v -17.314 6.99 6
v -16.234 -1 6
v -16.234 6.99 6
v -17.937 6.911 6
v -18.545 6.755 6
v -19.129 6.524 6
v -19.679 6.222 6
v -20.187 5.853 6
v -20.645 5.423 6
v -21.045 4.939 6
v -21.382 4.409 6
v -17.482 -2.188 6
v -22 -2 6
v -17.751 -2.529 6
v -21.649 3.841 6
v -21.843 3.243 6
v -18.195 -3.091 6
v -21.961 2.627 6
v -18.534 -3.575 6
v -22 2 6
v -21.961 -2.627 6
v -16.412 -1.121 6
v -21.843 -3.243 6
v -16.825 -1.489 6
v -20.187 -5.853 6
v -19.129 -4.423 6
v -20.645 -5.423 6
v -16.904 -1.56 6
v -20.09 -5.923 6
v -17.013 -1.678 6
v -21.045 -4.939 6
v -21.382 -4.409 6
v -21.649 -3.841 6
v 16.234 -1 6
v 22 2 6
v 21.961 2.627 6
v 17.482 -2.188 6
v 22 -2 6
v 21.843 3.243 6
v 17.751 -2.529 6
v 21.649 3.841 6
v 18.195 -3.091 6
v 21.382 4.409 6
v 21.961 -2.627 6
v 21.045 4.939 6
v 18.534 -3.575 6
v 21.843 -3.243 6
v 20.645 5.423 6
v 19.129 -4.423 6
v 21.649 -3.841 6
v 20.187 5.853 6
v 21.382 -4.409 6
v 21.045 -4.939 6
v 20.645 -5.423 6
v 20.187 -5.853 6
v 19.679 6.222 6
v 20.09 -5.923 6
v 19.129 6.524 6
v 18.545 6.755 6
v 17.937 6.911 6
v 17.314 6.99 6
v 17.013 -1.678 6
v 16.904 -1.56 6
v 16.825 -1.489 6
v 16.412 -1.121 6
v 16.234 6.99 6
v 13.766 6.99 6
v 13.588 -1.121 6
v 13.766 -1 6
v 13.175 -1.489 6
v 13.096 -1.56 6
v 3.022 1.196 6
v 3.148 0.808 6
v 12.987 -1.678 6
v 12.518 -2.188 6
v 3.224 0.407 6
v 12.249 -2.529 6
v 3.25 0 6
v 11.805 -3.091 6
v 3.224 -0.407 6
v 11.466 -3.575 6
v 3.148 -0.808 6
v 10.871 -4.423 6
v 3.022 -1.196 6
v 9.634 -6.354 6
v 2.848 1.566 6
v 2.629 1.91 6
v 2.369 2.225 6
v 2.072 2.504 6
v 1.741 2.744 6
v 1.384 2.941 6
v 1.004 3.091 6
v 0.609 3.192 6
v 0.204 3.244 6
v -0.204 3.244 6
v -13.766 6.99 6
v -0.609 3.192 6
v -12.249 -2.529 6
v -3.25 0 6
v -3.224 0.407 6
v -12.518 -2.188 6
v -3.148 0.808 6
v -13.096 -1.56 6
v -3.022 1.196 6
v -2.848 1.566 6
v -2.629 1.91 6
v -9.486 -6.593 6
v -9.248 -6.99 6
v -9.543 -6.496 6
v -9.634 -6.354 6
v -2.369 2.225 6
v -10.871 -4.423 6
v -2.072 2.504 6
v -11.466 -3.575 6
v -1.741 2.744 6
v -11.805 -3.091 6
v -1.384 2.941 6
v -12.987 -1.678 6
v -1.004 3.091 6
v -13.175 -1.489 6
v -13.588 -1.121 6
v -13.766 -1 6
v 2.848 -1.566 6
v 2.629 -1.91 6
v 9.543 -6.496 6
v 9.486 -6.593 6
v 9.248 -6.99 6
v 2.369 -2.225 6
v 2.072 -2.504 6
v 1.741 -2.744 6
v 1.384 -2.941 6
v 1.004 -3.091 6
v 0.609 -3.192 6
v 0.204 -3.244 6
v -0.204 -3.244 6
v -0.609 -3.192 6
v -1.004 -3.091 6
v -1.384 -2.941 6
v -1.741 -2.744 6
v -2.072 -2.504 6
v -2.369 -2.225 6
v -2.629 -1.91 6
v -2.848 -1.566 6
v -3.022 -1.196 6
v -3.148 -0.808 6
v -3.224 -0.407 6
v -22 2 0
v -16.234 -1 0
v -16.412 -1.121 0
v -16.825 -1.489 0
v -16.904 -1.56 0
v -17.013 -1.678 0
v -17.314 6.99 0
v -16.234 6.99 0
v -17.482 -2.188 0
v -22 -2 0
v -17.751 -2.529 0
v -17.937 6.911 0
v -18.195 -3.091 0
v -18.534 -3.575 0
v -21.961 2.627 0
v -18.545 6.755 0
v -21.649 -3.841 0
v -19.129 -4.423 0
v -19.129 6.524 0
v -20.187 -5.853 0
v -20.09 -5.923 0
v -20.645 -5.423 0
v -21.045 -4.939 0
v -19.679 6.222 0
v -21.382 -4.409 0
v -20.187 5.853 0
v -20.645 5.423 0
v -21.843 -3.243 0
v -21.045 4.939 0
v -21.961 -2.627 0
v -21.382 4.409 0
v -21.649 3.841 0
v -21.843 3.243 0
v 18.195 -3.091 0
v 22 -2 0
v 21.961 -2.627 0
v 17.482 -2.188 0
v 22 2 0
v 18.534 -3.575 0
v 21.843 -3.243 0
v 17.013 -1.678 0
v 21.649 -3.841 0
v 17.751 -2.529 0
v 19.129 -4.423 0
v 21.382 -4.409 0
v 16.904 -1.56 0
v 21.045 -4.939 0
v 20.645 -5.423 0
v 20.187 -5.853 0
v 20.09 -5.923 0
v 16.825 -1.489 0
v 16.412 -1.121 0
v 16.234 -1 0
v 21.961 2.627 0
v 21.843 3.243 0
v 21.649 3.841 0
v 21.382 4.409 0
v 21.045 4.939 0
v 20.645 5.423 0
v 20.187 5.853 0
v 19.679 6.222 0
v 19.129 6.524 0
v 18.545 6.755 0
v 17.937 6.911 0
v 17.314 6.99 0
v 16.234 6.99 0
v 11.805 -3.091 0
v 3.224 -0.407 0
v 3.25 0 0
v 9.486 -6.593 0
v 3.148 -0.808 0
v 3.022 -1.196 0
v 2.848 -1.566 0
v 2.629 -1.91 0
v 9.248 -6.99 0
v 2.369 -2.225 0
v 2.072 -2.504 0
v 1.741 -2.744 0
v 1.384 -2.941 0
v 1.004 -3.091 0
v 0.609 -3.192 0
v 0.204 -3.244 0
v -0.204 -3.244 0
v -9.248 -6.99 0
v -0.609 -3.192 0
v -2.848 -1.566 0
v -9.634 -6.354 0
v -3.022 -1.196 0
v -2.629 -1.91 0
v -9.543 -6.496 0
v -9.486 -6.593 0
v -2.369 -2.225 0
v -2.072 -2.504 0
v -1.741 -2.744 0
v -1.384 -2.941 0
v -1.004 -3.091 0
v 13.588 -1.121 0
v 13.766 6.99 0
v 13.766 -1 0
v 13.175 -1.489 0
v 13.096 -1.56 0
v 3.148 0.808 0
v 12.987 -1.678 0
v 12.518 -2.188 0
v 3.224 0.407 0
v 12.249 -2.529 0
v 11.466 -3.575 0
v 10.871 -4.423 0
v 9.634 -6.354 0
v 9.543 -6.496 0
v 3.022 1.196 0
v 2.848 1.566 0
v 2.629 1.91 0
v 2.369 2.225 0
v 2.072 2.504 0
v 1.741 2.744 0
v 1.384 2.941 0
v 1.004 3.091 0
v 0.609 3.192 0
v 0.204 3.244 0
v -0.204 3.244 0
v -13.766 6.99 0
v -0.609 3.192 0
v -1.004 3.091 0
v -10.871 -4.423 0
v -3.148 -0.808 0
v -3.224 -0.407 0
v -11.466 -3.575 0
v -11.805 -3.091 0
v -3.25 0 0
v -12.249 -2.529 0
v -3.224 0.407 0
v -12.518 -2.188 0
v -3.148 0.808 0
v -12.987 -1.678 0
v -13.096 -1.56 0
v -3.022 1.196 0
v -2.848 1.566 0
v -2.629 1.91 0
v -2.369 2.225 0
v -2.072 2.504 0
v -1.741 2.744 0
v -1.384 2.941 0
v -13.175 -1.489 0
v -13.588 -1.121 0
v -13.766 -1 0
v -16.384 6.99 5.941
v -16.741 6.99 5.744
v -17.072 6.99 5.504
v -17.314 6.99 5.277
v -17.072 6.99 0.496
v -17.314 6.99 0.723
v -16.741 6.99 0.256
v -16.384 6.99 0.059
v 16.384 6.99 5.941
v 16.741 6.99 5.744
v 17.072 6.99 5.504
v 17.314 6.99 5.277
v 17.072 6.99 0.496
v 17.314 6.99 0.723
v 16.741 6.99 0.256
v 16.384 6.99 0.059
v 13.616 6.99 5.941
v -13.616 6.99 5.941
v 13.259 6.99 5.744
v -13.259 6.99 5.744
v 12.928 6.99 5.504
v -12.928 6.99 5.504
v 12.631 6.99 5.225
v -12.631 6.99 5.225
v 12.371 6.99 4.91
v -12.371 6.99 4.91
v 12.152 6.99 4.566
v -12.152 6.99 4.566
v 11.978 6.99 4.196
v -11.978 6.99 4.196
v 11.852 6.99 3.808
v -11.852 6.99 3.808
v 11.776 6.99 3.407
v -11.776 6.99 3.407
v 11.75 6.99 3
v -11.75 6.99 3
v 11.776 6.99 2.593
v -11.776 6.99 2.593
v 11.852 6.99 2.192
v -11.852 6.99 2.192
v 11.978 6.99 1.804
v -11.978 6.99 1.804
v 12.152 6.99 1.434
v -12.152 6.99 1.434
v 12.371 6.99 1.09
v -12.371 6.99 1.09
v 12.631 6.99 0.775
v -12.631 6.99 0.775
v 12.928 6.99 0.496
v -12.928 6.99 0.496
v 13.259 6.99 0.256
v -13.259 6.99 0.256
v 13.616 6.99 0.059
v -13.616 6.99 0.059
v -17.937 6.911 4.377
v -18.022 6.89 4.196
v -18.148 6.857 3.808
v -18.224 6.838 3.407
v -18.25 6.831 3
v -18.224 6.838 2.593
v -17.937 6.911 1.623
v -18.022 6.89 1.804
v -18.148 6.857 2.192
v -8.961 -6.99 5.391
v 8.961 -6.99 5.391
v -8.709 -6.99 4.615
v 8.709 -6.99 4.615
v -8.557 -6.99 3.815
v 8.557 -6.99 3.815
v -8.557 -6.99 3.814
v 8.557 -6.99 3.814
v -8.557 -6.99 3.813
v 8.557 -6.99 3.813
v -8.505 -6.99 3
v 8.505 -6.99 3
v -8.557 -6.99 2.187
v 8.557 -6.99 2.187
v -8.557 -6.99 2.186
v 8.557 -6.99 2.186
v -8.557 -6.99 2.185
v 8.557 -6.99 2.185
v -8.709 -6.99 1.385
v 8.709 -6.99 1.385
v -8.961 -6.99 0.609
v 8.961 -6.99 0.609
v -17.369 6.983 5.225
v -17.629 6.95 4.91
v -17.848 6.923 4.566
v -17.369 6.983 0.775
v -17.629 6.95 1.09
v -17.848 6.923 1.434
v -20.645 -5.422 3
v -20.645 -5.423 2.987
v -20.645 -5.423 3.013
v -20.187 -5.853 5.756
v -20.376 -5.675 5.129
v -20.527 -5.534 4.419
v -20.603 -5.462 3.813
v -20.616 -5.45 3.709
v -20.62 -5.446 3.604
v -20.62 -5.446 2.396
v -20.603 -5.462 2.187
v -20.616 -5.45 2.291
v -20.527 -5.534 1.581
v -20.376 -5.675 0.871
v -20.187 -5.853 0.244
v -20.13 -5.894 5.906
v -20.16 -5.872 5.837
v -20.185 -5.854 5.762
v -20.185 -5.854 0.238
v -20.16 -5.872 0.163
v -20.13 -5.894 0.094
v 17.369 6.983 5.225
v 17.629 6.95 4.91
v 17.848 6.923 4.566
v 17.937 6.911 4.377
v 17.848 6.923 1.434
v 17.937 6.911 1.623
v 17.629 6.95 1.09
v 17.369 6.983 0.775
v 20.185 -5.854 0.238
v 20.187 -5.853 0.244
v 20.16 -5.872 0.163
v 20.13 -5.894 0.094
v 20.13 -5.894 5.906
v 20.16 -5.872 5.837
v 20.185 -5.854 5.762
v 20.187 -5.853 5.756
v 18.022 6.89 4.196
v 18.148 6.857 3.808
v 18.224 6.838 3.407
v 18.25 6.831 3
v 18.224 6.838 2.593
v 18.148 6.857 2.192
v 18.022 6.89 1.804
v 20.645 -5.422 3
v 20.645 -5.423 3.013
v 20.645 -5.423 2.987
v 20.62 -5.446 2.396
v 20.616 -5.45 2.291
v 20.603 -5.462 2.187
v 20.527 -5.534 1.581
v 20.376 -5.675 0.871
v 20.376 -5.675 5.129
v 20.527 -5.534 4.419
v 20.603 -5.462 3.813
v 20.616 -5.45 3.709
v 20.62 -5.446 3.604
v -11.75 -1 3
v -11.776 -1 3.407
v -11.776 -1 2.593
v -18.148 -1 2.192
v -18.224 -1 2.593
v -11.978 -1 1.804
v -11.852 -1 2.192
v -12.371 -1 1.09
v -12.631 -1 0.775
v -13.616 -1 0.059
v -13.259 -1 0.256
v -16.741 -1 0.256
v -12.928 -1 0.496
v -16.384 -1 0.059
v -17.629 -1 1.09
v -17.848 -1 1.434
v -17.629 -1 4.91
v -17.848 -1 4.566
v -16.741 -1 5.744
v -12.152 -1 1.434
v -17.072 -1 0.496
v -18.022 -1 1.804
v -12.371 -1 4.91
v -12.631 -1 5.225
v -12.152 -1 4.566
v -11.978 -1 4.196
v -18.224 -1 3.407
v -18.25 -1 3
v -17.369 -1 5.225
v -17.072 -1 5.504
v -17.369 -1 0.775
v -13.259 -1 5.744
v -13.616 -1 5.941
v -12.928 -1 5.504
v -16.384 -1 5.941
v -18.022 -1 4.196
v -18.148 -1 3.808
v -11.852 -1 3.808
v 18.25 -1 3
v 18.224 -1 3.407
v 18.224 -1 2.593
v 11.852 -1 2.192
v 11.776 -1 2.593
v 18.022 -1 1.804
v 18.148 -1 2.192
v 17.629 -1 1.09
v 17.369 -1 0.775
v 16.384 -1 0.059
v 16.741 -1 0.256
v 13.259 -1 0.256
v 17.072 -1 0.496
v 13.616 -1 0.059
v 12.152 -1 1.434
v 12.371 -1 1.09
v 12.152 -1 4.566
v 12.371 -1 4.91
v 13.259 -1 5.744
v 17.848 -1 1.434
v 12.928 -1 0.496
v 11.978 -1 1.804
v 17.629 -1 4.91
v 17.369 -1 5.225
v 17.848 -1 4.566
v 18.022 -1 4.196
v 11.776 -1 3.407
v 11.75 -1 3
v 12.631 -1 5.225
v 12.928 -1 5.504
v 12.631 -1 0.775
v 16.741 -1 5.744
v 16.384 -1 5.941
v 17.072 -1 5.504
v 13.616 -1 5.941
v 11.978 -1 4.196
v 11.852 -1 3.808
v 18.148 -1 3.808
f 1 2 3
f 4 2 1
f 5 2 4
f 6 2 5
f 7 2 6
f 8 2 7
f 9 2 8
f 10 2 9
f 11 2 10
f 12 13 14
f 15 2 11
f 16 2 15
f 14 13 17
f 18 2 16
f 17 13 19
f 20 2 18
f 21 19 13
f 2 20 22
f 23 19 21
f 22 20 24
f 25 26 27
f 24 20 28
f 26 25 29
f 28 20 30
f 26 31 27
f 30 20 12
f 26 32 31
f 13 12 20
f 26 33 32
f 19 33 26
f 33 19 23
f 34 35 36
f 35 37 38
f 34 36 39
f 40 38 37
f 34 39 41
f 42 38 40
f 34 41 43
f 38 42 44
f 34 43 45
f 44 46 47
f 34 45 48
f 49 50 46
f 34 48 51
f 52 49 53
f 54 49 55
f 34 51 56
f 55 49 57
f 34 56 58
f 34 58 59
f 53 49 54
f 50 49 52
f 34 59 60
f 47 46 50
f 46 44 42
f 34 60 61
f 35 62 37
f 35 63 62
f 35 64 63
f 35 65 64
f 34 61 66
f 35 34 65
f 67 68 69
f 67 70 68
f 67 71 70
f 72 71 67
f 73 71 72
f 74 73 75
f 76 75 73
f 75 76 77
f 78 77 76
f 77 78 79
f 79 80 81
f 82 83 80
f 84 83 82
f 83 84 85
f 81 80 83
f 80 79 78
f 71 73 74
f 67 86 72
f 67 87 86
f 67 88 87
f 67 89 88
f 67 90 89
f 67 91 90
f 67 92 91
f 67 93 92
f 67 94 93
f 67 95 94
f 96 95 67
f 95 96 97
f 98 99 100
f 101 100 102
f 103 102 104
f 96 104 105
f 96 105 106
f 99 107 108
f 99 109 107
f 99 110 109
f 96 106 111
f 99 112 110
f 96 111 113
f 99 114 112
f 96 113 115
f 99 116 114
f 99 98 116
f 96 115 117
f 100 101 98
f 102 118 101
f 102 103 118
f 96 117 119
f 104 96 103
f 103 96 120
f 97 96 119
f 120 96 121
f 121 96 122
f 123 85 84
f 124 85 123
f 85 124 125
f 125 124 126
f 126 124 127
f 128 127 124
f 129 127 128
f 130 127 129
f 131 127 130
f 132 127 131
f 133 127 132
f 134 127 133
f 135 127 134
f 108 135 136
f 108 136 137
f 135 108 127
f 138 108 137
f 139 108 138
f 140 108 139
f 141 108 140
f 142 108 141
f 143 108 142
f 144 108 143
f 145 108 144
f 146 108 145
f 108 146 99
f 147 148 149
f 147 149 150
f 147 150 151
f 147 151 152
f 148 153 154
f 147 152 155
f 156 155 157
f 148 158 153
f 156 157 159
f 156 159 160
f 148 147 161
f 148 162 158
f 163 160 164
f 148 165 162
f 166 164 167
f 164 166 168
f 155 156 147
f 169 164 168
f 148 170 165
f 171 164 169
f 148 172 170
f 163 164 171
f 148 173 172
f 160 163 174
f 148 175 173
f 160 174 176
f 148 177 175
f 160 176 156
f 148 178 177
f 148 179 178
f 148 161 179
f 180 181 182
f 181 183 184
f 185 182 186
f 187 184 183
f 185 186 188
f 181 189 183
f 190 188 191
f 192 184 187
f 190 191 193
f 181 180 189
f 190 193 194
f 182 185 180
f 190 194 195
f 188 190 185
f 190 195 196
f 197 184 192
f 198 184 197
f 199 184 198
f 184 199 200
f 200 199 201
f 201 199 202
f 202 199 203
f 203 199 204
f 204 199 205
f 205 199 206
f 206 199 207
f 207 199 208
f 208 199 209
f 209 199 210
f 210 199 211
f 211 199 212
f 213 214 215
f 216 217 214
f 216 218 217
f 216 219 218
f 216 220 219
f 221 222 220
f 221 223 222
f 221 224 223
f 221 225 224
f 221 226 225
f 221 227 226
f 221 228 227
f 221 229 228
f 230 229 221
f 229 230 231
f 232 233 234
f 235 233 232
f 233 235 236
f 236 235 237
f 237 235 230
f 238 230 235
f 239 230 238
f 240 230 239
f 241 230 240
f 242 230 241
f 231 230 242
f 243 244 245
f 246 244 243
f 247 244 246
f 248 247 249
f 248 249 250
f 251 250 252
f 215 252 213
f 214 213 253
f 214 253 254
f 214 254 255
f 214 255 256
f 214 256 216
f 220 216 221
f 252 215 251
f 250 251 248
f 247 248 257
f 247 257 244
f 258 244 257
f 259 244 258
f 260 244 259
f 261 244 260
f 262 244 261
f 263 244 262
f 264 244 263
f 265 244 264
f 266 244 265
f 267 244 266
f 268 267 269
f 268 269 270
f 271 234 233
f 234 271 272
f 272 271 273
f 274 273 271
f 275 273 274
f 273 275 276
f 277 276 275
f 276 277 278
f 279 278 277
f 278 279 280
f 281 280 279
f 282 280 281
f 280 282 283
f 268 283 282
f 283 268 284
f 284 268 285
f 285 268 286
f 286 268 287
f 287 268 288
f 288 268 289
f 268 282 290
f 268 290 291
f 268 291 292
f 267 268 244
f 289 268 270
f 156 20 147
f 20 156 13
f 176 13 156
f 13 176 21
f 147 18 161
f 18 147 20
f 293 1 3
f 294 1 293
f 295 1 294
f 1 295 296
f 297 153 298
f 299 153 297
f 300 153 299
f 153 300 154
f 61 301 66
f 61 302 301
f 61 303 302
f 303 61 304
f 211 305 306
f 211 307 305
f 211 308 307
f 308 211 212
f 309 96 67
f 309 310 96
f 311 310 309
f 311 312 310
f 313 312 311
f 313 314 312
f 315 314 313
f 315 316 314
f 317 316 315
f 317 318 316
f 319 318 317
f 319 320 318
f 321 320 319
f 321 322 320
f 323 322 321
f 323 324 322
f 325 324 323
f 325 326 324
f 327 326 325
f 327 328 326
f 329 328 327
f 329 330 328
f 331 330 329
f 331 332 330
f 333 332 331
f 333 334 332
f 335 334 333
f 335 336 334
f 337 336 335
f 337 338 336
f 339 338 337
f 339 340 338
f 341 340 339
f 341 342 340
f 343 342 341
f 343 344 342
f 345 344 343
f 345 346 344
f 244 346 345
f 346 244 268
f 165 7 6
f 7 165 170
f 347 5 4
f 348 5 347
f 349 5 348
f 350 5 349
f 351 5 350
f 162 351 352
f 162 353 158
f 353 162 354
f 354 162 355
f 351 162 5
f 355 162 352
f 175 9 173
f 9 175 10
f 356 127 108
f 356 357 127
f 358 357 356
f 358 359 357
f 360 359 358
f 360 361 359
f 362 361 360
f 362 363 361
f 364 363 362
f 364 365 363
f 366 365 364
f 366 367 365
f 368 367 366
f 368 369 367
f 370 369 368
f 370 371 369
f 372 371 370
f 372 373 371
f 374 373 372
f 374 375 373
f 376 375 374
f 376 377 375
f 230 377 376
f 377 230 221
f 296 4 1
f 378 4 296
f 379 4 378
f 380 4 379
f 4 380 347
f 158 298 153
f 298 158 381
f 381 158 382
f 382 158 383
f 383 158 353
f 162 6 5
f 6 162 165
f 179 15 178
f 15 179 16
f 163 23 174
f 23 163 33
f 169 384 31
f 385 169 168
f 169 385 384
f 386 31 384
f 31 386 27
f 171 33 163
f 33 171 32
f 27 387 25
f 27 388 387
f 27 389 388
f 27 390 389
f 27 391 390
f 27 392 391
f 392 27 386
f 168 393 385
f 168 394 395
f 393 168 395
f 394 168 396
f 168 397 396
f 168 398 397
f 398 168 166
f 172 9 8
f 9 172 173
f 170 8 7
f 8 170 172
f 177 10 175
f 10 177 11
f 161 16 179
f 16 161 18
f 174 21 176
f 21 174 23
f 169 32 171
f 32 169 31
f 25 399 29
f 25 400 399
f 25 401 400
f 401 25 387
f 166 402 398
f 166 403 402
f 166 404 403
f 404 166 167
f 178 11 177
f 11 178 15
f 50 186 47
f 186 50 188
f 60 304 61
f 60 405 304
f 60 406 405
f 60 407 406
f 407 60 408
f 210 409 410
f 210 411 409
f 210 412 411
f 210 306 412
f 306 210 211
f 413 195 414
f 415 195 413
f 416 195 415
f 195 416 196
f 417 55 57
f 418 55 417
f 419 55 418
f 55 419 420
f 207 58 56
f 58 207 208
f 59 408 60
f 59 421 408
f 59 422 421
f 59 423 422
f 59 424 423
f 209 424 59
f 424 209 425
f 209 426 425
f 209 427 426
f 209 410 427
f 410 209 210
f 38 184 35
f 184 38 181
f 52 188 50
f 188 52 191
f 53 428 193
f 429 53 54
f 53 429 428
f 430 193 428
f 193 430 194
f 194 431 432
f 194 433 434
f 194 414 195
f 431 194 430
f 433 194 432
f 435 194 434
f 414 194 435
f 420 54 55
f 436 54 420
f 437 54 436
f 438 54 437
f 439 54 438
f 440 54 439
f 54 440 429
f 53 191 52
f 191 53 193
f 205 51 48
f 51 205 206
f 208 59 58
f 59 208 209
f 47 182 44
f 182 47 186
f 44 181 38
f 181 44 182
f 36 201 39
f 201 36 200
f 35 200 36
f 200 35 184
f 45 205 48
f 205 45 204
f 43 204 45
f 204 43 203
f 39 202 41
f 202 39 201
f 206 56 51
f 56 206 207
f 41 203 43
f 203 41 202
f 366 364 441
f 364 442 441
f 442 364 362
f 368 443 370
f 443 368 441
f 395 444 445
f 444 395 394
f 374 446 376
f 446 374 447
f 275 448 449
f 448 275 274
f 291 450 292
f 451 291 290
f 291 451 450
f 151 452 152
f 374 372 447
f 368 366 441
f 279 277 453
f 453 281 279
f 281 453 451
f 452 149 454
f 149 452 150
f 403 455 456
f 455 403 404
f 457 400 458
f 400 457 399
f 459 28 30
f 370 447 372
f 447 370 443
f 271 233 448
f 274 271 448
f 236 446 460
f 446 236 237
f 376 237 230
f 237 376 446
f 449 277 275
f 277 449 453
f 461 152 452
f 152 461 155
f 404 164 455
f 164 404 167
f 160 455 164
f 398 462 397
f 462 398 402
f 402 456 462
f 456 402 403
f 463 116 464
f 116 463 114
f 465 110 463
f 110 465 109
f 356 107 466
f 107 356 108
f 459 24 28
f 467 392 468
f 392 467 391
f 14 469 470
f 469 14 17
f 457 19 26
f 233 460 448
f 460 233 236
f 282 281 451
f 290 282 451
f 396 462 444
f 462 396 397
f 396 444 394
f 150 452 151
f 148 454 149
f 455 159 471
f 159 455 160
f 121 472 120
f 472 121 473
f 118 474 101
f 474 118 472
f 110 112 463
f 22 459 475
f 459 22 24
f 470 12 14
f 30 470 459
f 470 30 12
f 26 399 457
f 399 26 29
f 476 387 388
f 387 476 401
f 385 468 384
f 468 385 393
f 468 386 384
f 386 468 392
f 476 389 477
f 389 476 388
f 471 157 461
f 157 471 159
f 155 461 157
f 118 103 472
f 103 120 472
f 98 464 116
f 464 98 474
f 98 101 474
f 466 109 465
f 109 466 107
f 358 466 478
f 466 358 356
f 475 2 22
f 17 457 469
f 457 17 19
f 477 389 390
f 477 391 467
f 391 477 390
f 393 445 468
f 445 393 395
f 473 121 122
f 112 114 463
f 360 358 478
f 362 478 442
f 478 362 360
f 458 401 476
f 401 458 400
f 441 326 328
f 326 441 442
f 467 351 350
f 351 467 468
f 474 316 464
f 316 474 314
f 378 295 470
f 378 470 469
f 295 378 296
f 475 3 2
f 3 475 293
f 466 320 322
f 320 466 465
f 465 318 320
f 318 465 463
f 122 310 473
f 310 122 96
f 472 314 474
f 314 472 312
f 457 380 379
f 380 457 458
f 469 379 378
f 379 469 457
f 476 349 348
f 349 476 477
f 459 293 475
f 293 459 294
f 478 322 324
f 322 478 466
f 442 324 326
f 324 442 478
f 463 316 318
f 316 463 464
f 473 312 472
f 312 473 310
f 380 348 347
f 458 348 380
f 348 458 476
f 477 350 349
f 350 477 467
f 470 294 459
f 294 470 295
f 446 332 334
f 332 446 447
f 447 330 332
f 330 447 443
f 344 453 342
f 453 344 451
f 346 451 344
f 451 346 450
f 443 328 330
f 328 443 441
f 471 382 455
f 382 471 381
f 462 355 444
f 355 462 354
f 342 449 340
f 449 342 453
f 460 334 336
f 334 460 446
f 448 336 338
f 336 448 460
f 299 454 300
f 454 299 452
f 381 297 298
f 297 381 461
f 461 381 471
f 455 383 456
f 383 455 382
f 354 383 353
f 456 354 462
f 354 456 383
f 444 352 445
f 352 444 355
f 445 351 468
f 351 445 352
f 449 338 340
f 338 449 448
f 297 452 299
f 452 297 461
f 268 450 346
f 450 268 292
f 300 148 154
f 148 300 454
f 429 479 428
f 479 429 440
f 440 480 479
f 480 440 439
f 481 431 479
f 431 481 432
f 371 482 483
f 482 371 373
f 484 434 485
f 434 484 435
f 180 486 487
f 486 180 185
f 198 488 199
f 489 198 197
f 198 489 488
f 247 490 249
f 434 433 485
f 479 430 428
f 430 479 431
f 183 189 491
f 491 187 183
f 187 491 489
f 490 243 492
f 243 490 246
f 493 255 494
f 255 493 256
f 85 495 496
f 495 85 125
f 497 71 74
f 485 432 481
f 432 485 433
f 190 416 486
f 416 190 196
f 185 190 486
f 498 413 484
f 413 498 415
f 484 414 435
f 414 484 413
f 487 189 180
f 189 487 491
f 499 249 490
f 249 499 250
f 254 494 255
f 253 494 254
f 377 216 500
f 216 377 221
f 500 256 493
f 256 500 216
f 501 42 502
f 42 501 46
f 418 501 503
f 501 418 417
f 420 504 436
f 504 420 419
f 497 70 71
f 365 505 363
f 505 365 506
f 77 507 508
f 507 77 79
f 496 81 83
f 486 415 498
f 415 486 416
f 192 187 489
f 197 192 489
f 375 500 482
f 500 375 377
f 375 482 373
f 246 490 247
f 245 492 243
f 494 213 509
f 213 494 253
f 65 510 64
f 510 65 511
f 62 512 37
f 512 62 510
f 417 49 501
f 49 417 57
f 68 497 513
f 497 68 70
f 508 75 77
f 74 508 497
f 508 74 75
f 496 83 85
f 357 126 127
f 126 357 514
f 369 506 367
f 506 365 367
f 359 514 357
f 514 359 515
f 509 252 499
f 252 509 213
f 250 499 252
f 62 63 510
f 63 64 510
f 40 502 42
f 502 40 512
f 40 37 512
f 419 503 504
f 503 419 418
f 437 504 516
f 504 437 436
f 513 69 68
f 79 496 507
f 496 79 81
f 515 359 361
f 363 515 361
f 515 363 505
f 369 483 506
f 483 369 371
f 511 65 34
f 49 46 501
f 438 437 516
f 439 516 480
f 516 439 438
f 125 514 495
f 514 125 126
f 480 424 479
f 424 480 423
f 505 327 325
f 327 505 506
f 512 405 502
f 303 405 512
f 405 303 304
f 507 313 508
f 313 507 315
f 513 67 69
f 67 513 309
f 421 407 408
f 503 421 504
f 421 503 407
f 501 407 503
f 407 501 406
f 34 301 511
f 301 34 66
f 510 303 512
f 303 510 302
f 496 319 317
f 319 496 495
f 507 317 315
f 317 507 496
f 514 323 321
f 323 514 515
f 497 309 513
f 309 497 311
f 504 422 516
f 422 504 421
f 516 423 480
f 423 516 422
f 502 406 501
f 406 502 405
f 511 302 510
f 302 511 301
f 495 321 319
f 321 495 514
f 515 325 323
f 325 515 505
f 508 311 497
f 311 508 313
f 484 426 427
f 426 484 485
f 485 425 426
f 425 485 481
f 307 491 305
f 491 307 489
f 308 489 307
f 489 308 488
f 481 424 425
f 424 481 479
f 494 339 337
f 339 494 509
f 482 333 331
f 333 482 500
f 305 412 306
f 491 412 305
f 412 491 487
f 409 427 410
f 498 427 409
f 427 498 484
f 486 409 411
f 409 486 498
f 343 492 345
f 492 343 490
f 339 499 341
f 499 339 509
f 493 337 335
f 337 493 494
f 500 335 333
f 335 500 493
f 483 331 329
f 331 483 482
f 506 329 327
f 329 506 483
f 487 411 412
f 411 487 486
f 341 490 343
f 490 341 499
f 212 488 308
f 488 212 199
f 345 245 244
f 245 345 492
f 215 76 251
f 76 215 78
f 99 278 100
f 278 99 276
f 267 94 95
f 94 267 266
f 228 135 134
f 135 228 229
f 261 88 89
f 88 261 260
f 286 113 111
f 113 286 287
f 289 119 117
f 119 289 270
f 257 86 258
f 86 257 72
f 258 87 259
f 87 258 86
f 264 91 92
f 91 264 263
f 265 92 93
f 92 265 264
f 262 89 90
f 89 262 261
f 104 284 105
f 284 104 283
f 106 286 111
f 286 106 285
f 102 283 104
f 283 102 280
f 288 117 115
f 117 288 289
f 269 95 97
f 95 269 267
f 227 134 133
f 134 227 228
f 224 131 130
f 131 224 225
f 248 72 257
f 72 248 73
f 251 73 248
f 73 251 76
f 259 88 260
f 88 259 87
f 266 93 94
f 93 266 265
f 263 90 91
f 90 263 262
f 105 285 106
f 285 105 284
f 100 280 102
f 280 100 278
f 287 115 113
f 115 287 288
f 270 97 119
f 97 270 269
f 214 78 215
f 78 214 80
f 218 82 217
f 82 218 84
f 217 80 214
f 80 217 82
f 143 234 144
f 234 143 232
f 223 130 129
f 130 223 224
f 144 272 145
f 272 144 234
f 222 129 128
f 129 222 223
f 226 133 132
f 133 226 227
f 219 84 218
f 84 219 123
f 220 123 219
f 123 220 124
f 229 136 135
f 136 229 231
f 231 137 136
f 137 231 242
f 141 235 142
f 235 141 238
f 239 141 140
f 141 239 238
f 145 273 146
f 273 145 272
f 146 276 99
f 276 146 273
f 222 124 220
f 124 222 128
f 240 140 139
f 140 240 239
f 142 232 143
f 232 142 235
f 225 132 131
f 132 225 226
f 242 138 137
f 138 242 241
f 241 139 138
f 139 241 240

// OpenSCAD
$fn = 50;


difference() {
	union() {
		cylinder(h = 6, r = 7.0000000000);
		translate(v = [-7.5000000000, 0.0000000000, 0]) {
			hull() {
				translate(v = [-9.5000000000, 2.0000000000, 0]) {
					cylinder(h = 6, r = 5);
				}
				translate(v = [9.5000000000, 2.0000000000, 0]) {
					cylinder(h = 6, r = 5);
				}
				translate(v = [-9.5000000000, -2.0000000000, 0]) {
					cylinder(h = 6, r = 5);
				}
				translate(v = [9.5000000000, -2.0000000000, 0]) {
					cylinder(h = 6, r = 5);
				}
			}
		}
		translate(v = [-7.5000000000, 0.0000000000, 0]) {
			hull() {
				translate(v = [-9.5000000000, 2.0000000000, 0]) {
					cylinder(h = 6, r = 5);
				}
				translate(v = [9.5000000000, 2.0000000000, 0]) {
					cylinder(h = 6, r = 5);
				}
				translate(v = [-9.5000000000, -2.0000000000, 0]) {
					cylinder(h = 6, r = 5);
				}
				translate(v = [9.5000000000, -2.0000000000, 0]) {
					cylinder(h = 6, r = 5);
				}
			}
		}
		translate(v = [7.5000000000, 0.0000000000, 0]) {
			hull() {
				translate(v = [-9.5000000000, 2.0000000000, 0]) {
					cylinder(h = 6, r = 5);
				}
				translate(v = [9.5000000000, 2.0000000000, 0]) {
					cylinder(h = 6, r = 5);
				}
				translate(v = [-9.5000000000, -2.0000000000, 0]) {
					cylinder(h = 6, r = 5);
				}
				translate(v = [9.5000000000, -2.0000000000, 0]) {
					cylinder(h = 6, r = 5);
				}
			}
		}
		translate(v = [7.5000000000, 0.0000000000, 0]) {
			hull() {
				translate(v = [-9.5000000000, 2.0000000000, 0]) {
					cylinder(h = 6, r = 5);
				}
				translate(v = [9.5000000000, 2.0000000000, 0]) {
					cylinder(h = 6, r = 5);
				}
				translate(v = [-9.5000000000, -2.0000000000, 0]) {
					cylinder(h = 6, r = 5);
				}
				translate(v = [9.5000000000, -2.0000000000, 0]) {
					cylinder(h = 6, r = 5);
				}
			}
		}
	}
	union() {
		translate(v = [-15.0000000000, -7.0000000000, 3.0000000000]) {
			rotate(a = [90, 0, 0]) {
				difference() {
					union() {
						#translate(v = [0, 0, -14.0000000000]) {
							cylinder(h = 14, r = 2.2500000000);
						}
						#translate(v = [0, 0, -6]) {
							cylinder(h = 6, r1 = 3.2500000000, r2 = 6.5000000000);
						}
						#translate(v = [0, 0, -14.0000000000]) {
							cylinder(h = 14, r = 3.2500000000);
						}
						#translate(v = [0, 0, -14.0000000000]) {
							cylinder(h = 14, r = 2.2500000000);
						}
					}
					union();
				}
			}
		}
		translate(v = [15.0000000000, -7.0000000000, 3.0000000000]) {
			rotate(a = [90, 0, 0]) {
				difference() {
					union() {
						#translate(v = [0, 0, -14.0000000000]) {
							cylinder(h = 14, r = 2.2500000000);
						}
						#translate(v = [0, 0, -6]) {
							cylinder(h = 6, r1 = 3.2500000000, r2 = 6.5000000000);
						}
						#translate(v = [0, 0, -14.0000000000]) {
							cylinder(h = 14, r = 3.2500000000);
						}
						#translate(v = [0, 0, -14.0000000000]) {
							cylinder(h = 14, r = 2.2500000000);
						}
					}
					union();
				}
			}
		}
		translate(v = [0, 0, -100]) {
			cylinder(h = 200, r = 3.2500000000);
		}
		translate(v = [0, 0, -100]) {
			cylinder(h = 200, r = 1.8000000000);
		}
	}
}
